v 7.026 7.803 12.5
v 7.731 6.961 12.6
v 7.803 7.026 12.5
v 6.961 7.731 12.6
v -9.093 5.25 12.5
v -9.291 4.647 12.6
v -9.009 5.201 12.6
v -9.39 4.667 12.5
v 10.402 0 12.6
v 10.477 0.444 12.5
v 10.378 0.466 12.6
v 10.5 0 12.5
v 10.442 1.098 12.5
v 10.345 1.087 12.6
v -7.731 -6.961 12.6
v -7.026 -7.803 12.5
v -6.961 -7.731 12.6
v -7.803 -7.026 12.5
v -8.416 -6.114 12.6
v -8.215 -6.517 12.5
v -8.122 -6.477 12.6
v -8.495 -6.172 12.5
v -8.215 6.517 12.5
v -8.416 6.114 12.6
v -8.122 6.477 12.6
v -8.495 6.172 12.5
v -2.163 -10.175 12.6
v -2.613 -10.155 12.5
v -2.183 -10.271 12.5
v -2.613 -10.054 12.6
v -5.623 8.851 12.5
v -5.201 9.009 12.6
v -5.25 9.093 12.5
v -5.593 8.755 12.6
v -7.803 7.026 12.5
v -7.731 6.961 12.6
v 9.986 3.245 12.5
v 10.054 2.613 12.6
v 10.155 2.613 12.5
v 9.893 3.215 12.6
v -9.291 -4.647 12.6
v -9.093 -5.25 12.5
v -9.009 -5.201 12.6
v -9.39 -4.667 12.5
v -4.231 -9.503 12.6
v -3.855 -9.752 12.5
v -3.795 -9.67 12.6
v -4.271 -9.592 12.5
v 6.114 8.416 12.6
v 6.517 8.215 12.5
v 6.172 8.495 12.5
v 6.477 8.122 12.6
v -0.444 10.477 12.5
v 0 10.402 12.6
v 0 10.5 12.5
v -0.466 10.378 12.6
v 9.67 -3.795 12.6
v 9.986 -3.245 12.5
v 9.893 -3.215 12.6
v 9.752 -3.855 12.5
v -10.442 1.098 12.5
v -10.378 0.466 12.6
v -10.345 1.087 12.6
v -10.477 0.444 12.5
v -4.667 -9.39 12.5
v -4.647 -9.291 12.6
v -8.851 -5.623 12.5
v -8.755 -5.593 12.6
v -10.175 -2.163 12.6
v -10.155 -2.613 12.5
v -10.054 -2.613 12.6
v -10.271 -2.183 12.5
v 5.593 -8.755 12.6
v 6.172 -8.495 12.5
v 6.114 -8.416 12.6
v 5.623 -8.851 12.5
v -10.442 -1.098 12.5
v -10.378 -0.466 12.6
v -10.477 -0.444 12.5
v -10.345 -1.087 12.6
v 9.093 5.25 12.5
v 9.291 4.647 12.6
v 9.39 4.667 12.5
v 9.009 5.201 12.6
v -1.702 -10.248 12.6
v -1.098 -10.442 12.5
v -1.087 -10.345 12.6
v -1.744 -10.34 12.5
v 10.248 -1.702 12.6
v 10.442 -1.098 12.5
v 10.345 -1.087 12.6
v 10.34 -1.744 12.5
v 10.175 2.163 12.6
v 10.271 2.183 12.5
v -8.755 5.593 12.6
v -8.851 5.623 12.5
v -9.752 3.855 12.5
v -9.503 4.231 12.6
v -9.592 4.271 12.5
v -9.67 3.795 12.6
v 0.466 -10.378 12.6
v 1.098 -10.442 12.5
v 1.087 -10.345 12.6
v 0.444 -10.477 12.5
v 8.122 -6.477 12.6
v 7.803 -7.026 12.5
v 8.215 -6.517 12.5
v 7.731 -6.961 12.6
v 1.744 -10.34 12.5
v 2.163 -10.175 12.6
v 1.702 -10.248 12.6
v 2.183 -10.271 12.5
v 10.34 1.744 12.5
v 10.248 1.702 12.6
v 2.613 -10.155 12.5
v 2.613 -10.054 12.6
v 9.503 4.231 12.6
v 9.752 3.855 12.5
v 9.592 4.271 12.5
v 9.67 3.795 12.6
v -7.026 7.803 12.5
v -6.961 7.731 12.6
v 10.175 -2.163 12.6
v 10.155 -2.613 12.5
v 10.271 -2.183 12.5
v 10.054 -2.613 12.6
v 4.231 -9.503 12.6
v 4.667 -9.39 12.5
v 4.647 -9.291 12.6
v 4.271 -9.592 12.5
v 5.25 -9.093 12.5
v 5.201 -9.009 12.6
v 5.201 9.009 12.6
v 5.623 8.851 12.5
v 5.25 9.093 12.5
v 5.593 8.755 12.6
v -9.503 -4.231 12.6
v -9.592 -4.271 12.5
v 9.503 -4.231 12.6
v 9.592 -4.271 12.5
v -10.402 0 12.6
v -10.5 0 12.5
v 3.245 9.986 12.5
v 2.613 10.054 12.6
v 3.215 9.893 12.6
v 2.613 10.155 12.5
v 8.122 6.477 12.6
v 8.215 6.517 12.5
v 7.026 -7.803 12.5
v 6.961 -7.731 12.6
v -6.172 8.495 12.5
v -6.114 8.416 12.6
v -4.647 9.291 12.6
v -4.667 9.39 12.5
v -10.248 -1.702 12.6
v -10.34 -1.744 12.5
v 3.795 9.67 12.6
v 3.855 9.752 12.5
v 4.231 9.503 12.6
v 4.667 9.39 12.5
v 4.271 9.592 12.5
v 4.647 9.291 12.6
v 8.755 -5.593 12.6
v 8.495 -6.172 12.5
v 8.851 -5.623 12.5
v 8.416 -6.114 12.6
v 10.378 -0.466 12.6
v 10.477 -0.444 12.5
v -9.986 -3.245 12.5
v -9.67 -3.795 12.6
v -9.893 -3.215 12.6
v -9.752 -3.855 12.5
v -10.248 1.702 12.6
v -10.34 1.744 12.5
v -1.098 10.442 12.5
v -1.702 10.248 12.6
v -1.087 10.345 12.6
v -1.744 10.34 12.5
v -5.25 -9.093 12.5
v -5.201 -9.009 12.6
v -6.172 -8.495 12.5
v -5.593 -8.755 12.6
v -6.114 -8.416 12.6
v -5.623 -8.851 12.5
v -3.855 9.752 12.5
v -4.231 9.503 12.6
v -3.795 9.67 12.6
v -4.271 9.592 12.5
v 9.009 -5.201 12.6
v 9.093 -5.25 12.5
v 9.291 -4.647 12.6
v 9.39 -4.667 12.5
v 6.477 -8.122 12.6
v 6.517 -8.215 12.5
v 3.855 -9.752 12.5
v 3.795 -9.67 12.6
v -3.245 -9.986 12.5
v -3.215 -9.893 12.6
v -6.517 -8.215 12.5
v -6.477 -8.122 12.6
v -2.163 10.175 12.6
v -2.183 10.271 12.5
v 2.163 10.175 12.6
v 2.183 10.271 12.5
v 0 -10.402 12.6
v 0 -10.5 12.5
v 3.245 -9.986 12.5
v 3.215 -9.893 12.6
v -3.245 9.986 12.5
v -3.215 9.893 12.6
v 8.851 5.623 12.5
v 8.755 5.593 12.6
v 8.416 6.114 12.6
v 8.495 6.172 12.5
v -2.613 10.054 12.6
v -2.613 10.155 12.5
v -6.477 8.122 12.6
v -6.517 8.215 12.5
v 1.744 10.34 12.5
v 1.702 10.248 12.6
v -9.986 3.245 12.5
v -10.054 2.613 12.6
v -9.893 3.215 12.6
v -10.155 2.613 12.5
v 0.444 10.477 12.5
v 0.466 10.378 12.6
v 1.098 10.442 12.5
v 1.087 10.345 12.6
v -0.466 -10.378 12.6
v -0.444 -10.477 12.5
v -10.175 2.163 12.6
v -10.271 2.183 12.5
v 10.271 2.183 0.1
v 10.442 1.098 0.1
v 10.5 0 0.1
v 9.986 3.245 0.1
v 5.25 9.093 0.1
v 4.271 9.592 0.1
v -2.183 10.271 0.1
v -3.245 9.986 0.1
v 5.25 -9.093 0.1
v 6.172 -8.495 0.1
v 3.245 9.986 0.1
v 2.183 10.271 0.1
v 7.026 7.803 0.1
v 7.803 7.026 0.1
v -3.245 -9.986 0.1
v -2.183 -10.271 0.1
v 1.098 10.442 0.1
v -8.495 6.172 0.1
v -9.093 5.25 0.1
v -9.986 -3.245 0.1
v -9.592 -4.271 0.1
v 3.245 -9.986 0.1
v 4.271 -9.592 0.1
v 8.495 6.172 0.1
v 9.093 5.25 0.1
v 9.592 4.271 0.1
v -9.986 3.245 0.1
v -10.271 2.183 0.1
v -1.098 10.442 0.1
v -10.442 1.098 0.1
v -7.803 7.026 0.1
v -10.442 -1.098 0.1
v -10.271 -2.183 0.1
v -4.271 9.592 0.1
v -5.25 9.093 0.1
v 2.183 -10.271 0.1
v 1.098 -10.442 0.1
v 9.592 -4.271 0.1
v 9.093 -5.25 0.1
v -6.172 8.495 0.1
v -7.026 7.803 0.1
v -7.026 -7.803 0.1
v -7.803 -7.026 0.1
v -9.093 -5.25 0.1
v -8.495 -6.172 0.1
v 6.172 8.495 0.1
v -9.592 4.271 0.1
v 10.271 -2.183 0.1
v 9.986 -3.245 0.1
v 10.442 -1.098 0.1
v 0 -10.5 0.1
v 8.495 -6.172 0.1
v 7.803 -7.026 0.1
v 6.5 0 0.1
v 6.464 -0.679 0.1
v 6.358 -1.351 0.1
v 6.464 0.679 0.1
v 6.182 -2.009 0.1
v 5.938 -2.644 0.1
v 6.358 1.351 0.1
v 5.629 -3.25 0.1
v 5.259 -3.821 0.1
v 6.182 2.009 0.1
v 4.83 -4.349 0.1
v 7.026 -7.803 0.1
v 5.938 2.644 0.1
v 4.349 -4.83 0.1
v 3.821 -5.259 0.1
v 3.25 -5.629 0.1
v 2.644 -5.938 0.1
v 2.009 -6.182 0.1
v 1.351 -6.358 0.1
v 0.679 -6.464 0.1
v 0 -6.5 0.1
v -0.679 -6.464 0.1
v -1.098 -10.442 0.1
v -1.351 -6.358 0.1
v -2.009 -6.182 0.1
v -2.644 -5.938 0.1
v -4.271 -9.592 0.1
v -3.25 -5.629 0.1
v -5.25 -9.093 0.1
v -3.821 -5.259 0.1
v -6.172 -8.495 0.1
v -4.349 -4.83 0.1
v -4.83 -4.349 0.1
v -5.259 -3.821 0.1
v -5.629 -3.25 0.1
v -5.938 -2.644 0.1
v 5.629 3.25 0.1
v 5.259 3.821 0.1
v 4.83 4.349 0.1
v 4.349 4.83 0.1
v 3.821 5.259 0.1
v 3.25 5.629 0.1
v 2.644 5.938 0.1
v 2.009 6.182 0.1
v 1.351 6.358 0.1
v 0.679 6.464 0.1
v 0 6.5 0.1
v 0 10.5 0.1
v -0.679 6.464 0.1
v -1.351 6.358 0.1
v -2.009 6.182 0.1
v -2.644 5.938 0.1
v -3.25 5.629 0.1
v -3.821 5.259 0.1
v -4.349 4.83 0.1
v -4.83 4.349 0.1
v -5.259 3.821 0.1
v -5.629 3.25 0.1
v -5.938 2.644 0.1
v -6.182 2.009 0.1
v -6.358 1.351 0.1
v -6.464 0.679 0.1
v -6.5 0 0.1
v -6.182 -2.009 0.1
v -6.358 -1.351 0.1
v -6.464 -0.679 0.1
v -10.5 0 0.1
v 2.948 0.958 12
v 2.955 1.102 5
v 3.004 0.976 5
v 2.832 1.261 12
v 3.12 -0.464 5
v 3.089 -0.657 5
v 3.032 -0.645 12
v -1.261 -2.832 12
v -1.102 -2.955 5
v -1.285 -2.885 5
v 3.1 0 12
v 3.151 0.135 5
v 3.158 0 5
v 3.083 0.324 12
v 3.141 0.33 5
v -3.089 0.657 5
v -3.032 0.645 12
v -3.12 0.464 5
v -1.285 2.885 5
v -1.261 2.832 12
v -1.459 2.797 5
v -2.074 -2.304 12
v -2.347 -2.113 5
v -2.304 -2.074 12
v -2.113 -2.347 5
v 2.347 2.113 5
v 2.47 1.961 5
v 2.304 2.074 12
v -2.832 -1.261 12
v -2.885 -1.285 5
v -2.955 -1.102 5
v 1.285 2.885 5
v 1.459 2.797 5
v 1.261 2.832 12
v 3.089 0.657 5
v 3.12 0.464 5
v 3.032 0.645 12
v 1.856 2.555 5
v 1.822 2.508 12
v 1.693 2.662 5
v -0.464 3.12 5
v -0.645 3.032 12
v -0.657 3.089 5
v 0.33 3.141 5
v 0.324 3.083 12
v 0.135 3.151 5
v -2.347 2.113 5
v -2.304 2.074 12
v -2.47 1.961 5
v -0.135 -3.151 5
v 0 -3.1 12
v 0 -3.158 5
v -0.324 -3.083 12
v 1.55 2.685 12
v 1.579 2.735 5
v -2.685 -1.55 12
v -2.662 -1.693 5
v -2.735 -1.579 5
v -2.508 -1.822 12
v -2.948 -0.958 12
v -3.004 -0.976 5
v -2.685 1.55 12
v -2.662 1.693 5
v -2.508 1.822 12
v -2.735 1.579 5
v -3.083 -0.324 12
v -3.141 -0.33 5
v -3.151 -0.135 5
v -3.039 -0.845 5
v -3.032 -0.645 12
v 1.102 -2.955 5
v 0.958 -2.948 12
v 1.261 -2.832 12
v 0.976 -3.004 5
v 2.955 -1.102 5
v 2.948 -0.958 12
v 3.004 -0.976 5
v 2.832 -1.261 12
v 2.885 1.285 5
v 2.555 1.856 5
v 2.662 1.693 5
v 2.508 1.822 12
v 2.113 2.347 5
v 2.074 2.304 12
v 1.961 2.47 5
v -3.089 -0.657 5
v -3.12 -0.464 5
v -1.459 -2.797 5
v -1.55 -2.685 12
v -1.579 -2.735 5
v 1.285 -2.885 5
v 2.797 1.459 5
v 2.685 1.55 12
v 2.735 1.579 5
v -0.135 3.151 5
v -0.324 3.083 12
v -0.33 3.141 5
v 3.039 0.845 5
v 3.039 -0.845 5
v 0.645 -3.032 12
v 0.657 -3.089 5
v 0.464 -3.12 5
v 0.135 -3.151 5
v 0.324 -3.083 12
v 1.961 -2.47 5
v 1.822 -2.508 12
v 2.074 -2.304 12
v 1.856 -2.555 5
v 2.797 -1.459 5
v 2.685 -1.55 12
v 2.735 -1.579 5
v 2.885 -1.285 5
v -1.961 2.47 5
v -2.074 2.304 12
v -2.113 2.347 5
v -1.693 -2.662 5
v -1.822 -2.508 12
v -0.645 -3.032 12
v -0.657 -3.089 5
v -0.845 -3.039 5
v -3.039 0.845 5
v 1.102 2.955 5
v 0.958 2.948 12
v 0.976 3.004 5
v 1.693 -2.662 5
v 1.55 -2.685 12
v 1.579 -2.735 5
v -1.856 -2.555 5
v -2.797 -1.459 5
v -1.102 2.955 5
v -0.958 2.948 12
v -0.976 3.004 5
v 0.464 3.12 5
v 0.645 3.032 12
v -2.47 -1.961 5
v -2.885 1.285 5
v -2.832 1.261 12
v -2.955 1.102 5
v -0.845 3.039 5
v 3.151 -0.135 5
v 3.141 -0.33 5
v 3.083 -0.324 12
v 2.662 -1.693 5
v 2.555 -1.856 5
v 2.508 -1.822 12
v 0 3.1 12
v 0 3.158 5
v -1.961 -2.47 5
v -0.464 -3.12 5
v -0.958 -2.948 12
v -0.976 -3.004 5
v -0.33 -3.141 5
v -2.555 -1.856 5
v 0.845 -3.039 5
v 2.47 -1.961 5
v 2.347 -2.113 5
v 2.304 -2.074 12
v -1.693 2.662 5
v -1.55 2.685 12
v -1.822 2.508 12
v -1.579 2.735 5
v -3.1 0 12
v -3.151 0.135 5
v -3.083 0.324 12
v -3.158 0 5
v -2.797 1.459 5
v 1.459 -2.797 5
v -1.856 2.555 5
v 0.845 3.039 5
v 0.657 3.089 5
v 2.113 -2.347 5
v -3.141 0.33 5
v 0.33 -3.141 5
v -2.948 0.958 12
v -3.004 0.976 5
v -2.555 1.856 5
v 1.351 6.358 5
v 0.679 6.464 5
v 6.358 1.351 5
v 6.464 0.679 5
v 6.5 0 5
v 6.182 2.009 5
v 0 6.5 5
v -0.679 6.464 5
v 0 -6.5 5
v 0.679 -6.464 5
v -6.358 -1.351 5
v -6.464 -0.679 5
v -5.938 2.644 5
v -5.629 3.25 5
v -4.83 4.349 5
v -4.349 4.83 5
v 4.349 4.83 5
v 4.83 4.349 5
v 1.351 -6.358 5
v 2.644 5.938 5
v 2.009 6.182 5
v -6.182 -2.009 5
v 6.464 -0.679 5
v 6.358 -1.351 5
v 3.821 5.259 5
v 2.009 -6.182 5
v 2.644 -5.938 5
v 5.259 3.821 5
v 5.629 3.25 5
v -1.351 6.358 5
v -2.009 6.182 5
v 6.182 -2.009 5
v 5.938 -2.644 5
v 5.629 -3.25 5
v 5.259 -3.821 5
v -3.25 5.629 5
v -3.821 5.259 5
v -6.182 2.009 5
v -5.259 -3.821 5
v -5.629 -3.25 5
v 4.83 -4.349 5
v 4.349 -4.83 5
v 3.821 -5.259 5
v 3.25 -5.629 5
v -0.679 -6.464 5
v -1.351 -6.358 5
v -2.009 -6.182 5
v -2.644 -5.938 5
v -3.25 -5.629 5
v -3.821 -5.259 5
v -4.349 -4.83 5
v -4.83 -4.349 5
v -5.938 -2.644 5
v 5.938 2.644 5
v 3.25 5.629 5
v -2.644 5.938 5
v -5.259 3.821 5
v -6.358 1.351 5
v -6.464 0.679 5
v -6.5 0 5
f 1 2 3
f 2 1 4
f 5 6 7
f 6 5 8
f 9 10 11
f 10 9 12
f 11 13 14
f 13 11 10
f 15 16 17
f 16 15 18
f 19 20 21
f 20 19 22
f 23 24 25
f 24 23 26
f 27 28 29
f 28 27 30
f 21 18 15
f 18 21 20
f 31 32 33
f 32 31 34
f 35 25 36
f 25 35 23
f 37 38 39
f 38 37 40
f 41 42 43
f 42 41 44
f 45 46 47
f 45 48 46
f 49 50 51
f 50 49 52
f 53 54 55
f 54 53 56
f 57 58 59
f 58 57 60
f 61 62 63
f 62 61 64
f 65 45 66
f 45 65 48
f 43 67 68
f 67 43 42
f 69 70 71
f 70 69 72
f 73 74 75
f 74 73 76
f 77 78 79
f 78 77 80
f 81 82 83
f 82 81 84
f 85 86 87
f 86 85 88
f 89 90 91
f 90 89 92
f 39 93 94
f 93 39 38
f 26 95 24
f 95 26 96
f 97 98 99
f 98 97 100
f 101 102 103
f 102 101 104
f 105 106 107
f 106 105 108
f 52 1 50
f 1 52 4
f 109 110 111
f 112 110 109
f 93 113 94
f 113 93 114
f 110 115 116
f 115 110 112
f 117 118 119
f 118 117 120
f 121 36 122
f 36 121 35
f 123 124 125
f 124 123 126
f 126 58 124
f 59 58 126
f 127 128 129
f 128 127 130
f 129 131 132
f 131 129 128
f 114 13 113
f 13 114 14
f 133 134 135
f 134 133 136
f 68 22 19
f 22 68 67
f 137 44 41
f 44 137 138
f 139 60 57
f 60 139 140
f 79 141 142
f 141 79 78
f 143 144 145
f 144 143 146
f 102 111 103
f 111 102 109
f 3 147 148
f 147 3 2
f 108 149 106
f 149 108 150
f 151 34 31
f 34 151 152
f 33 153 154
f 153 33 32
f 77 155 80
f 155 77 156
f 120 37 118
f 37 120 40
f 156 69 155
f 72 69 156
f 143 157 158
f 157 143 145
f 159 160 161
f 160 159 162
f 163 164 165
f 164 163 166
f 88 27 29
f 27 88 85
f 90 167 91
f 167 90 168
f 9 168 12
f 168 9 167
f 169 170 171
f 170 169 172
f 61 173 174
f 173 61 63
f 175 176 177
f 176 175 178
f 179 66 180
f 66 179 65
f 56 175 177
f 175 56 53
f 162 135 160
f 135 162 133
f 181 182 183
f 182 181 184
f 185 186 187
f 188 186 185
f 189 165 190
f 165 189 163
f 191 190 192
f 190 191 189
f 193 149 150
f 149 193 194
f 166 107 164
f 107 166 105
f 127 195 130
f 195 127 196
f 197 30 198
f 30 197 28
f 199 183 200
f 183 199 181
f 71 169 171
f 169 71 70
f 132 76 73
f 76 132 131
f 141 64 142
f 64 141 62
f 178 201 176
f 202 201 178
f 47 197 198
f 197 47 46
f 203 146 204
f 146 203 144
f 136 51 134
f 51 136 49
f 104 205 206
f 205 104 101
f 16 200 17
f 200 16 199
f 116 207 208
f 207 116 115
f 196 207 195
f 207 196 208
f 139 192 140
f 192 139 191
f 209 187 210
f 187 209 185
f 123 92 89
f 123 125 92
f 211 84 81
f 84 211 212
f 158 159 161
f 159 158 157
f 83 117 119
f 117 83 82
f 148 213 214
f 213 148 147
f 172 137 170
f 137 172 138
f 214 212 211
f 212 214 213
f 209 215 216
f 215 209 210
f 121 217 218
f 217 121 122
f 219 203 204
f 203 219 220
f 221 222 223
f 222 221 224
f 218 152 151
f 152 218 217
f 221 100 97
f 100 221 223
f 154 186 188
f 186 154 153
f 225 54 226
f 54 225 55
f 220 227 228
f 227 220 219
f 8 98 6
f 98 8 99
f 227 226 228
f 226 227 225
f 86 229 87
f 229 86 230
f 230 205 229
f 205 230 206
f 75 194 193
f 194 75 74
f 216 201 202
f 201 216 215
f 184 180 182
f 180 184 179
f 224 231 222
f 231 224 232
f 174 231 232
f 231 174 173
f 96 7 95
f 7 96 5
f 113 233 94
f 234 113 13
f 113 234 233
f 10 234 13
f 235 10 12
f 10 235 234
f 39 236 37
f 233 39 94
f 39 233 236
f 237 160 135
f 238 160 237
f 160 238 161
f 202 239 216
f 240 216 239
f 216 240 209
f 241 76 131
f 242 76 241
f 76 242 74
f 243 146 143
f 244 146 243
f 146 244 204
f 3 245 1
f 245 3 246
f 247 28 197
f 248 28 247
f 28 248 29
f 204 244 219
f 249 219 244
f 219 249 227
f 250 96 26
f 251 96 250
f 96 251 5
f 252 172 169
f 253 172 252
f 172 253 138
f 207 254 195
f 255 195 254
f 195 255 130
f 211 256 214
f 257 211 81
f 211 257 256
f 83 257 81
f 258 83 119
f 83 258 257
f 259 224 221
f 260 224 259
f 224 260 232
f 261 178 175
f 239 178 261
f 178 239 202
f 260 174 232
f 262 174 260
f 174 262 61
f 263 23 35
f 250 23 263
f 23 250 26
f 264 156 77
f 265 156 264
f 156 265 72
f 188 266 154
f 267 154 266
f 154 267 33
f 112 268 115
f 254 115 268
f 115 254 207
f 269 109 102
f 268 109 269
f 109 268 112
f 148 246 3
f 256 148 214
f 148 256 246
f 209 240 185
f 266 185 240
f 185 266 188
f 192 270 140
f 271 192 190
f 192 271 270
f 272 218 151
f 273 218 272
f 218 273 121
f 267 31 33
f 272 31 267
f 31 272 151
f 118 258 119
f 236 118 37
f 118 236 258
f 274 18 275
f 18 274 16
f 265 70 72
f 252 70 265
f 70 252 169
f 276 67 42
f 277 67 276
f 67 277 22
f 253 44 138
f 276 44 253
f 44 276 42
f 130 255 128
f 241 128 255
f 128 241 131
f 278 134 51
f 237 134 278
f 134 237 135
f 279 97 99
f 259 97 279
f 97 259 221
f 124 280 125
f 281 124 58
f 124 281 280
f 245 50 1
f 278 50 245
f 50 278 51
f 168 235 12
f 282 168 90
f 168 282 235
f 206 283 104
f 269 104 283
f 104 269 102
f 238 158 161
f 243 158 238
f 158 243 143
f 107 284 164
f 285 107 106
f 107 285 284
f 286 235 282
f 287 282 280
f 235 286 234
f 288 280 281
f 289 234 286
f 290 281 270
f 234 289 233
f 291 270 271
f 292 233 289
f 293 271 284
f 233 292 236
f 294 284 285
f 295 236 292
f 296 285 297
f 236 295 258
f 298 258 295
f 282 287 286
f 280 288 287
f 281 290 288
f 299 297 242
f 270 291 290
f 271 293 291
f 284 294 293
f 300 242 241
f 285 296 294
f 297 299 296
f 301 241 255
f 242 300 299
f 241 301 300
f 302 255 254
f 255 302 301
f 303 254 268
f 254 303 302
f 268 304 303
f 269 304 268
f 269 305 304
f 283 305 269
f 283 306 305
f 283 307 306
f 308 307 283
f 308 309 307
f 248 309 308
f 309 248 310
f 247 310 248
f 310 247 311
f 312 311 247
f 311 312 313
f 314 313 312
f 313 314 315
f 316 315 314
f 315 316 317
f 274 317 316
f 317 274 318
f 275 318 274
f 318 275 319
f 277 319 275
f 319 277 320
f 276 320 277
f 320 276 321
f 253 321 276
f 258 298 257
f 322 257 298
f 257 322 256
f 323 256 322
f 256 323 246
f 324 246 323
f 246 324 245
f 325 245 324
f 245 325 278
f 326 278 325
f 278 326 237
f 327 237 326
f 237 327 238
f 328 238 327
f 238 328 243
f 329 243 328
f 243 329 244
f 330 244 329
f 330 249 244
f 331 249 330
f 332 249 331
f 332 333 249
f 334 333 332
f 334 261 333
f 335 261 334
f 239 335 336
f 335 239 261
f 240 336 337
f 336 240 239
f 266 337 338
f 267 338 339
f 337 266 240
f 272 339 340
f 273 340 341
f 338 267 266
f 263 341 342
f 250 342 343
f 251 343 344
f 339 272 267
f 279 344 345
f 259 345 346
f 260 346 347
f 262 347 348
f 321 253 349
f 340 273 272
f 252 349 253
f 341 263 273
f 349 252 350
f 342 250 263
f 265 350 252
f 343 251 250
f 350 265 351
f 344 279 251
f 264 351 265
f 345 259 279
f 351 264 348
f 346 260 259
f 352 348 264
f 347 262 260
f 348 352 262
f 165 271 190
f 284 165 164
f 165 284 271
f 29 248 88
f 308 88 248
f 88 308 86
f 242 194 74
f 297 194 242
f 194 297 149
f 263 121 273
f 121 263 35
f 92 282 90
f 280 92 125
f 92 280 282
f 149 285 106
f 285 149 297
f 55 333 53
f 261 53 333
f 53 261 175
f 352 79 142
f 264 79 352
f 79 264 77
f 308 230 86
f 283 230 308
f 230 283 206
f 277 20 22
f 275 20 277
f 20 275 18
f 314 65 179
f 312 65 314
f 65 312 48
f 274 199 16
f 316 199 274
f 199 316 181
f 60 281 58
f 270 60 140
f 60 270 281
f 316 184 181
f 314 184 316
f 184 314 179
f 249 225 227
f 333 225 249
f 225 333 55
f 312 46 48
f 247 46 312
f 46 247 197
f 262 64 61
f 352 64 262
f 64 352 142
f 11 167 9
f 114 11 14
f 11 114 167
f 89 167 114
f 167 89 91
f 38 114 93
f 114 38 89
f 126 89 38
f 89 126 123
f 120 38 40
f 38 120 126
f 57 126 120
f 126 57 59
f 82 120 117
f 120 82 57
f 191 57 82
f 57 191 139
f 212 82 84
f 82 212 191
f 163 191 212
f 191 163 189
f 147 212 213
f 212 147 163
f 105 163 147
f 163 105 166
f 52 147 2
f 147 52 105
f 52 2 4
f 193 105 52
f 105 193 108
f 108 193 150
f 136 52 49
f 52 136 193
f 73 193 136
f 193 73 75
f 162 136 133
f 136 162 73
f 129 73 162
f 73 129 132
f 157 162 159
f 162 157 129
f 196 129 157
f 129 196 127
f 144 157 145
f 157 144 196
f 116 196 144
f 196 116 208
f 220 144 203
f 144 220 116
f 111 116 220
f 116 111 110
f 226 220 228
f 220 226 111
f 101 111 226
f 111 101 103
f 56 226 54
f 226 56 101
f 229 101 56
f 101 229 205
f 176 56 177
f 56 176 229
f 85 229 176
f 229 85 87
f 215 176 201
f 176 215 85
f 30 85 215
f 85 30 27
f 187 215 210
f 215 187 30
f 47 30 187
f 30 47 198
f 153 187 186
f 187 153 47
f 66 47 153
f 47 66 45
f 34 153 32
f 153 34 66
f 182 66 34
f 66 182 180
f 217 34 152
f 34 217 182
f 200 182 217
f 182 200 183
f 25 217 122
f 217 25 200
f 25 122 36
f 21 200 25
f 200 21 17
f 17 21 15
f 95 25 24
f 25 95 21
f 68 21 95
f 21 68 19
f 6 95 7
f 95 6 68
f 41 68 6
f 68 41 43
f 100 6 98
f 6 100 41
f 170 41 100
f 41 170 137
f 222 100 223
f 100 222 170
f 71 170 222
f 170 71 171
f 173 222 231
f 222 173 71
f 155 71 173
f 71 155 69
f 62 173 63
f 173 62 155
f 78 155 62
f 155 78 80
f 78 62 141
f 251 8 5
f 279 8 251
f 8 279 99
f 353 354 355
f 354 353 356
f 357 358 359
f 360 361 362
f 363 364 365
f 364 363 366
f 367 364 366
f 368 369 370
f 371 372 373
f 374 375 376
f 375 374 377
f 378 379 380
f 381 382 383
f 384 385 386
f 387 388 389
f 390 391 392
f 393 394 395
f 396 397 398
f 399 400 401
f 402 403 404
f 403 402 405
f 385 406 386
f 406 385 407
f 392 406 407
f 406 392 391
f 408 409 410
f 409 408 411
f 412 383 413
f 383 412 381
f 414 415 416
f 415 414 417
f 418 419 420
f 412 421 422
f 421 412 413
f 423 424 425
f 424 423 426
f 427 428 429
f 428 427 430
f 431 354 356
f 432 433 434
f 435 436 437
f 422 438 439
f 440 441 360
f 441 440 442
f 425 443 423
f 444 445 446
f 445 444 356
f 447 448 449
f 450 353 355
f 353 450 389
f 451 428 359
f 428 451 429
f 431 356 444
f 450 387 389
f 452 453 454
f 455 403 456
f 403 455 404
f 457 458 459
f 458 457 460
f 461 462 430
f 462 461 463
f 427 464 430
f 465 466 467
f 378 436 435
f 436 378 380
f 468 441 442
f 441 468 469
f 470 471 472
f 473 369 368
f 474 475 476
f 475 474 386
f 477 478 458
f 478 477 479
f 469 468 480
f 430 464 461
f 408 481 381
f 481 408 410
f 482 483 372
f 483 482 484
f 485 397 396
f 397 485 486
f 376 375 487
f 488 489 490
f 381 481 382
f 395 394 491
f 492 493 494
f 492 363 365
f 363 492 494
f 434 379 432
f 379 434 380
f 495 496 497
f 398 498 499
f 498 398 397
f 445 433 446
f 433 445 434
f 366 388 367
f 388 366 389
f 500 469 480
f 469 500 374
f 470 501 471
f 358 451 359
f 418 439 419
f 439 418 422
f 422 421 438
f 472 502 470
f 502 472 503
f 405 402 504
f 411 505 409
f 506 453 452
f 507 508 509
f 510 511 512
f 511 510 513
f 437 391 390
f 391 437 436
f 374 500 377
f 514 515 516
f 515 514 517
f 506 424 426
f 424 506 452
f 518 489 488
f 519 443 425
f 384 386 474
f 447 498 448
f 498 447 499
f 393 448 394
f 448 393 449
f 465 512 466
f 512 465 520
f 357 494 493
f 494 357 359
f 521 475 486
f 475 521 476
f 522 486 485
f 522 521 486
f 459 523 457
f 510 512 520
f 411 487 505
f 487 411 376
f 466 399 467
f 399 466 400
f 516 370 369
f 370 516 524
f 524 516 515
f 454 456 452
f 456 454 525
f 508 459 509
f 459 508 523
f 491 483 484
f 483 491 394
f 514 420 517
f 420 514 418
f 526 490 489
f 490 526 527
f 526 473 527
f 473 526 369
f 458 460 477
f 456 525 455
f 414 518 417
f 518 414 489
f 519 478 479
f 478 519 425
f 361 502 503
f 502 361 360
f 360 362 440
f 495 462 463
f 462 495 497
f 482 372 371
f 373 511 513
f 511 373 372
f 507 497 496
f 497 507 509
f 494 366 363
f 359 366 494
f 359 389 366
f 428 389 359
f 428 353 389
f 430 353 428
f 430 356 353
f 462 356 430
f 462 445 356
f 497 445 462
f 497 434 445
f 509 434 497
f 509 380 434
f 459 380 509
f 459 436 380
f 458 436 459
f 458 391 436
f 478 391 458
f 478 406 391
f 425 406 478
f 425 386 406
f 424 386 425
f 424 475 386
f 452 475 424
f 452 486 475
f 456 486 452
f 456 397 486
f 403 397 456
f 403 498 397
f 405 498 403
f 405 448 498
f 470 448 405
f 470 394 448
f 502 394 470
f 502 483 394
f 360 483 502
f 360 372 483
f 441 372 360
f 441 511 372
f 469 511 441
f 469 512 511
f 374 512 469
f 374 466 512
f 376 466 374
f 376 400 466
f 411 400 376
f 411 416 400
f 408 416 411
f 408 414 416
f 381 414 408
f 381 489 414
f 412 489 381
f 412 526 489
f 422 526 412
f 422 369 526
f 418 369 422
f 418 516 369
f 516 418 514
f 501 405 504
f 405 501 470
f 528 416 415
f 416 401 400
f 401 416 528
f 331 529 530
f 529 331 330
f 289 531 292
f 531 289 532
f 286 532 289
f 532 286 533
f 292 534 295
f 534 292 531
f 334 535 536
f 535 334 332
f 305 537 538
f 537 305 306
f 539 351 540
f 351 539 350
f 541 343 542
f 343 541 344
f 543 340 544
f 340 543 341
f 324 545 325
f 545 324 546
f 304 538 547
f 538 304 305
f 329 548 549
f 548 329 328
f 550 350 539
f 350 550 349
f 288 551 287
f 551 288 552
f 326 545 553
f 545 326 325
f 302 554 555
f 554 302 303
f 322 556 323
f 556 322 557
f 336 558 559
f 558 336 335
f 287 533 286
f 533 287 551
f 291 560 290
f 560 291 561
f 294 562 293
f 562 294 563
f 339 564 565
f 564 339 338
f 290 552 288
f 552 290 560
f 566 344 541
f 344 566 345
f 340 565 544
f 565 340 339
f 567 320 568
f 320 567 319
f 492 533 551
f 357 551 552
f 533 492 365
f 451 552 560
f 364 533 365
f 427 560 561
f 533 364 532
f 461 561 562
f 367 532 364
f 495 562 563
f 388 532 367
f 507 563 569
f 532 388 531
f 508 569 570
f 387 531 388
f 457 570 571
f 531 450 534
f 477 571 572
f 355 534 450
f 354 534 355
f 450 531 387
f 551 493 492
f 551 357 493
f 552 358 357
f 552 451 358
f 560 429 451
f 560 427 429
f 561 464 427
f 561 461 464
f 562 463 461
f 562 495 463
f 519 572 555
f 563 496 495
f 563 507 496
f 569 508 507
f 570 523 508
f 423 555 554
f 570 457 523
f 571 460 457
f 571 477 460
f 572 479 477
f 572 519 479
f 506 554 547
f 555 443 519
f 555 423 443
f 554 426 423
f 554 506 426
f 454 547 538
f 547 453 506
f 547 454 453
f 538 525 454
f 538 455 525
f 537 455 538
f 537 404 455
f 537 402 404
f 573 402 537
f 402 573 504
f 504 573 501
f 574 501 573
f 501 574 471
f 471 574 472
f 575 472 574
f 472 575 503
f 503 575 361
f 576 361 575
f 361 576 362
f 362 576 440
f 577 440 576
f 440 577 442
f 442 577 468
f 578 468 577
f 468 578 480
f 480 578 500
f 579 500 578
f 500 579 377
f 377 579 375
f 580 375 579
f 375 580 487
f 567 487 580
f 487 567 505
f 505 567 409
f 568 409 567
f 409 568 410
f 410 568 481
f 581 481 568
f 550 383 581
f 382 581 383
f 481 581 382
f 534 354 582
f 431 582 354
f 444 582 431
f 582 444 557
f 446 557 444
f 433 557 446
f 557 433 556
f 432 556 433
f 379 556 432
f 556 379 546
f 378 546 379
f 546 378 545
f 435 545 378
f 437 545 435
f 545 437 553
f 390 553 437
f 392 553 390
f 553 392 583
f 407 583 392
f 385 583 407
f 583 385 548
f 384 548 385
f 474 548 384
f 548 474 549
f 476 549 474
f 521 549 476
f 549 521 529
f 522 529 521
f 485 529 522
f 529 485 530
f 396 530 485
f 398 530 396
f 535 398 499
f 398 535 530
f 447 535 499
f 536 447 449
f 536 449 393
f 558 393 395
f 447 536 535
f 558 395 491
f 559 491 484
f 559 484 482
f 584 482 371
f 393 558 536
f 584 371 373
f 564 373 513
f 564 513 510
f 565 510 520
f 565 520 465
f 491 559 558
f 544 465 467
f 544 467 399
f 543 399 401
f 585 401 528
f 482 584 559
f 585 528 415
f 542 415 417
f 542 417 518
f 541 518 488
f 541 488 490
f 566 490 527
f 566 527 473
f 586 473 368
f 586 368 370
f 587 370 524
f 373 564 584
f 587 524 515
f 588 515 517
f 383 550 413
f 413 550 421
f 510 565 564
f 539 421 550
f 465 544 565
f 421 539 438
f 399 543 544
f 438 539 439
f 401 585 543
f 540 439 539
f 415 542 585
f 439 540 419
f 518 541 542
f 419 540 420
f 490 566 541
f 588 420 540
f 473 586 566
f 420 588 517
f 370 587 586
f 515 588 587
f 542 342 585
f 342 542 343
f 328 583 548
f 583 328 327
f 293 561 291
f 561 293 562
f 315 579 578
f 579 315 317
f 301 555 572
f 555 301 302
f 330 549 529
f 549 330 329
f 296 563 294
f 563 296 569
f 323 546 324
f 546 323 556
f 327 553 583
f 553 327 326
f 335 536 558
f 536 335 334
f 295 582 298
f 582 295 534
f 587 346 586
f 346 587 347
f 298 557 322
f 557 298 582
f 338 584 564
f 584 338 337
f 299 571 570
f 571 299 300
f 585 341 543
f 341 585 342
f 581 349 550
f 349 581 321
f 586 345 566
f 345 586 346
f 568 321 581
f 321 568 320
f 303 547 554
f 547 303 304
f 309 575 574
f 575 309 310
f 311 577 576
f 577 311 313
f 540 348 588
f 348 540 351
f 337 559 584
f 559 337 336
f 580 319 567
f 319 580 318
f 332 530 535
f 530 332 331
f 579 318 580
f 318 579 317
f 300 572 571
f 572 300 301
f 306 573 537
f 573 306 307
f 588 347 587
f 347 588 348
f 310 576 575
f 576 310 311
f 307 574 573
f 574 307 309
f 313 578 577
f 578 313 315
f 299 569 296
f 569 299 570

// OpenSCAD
$fn=60;


difference(){
translate([0,0,0.1])cylinder(r=10.5,h=12.5);
cylinder(r1=3.2,r2=3.1,h=12);
cylinder(r=6.5,h=5);


//translate([0,0,20.6])rotate([90,0,0])cylinder(r=0.6,h=20);


translate([0,0,10.5]) difference(){
    cylinder(r=22,h=4);
translate([0,0,-0.05]) cylinder(r2= 8.5,r1=12.5,h=4.1);
}
}
